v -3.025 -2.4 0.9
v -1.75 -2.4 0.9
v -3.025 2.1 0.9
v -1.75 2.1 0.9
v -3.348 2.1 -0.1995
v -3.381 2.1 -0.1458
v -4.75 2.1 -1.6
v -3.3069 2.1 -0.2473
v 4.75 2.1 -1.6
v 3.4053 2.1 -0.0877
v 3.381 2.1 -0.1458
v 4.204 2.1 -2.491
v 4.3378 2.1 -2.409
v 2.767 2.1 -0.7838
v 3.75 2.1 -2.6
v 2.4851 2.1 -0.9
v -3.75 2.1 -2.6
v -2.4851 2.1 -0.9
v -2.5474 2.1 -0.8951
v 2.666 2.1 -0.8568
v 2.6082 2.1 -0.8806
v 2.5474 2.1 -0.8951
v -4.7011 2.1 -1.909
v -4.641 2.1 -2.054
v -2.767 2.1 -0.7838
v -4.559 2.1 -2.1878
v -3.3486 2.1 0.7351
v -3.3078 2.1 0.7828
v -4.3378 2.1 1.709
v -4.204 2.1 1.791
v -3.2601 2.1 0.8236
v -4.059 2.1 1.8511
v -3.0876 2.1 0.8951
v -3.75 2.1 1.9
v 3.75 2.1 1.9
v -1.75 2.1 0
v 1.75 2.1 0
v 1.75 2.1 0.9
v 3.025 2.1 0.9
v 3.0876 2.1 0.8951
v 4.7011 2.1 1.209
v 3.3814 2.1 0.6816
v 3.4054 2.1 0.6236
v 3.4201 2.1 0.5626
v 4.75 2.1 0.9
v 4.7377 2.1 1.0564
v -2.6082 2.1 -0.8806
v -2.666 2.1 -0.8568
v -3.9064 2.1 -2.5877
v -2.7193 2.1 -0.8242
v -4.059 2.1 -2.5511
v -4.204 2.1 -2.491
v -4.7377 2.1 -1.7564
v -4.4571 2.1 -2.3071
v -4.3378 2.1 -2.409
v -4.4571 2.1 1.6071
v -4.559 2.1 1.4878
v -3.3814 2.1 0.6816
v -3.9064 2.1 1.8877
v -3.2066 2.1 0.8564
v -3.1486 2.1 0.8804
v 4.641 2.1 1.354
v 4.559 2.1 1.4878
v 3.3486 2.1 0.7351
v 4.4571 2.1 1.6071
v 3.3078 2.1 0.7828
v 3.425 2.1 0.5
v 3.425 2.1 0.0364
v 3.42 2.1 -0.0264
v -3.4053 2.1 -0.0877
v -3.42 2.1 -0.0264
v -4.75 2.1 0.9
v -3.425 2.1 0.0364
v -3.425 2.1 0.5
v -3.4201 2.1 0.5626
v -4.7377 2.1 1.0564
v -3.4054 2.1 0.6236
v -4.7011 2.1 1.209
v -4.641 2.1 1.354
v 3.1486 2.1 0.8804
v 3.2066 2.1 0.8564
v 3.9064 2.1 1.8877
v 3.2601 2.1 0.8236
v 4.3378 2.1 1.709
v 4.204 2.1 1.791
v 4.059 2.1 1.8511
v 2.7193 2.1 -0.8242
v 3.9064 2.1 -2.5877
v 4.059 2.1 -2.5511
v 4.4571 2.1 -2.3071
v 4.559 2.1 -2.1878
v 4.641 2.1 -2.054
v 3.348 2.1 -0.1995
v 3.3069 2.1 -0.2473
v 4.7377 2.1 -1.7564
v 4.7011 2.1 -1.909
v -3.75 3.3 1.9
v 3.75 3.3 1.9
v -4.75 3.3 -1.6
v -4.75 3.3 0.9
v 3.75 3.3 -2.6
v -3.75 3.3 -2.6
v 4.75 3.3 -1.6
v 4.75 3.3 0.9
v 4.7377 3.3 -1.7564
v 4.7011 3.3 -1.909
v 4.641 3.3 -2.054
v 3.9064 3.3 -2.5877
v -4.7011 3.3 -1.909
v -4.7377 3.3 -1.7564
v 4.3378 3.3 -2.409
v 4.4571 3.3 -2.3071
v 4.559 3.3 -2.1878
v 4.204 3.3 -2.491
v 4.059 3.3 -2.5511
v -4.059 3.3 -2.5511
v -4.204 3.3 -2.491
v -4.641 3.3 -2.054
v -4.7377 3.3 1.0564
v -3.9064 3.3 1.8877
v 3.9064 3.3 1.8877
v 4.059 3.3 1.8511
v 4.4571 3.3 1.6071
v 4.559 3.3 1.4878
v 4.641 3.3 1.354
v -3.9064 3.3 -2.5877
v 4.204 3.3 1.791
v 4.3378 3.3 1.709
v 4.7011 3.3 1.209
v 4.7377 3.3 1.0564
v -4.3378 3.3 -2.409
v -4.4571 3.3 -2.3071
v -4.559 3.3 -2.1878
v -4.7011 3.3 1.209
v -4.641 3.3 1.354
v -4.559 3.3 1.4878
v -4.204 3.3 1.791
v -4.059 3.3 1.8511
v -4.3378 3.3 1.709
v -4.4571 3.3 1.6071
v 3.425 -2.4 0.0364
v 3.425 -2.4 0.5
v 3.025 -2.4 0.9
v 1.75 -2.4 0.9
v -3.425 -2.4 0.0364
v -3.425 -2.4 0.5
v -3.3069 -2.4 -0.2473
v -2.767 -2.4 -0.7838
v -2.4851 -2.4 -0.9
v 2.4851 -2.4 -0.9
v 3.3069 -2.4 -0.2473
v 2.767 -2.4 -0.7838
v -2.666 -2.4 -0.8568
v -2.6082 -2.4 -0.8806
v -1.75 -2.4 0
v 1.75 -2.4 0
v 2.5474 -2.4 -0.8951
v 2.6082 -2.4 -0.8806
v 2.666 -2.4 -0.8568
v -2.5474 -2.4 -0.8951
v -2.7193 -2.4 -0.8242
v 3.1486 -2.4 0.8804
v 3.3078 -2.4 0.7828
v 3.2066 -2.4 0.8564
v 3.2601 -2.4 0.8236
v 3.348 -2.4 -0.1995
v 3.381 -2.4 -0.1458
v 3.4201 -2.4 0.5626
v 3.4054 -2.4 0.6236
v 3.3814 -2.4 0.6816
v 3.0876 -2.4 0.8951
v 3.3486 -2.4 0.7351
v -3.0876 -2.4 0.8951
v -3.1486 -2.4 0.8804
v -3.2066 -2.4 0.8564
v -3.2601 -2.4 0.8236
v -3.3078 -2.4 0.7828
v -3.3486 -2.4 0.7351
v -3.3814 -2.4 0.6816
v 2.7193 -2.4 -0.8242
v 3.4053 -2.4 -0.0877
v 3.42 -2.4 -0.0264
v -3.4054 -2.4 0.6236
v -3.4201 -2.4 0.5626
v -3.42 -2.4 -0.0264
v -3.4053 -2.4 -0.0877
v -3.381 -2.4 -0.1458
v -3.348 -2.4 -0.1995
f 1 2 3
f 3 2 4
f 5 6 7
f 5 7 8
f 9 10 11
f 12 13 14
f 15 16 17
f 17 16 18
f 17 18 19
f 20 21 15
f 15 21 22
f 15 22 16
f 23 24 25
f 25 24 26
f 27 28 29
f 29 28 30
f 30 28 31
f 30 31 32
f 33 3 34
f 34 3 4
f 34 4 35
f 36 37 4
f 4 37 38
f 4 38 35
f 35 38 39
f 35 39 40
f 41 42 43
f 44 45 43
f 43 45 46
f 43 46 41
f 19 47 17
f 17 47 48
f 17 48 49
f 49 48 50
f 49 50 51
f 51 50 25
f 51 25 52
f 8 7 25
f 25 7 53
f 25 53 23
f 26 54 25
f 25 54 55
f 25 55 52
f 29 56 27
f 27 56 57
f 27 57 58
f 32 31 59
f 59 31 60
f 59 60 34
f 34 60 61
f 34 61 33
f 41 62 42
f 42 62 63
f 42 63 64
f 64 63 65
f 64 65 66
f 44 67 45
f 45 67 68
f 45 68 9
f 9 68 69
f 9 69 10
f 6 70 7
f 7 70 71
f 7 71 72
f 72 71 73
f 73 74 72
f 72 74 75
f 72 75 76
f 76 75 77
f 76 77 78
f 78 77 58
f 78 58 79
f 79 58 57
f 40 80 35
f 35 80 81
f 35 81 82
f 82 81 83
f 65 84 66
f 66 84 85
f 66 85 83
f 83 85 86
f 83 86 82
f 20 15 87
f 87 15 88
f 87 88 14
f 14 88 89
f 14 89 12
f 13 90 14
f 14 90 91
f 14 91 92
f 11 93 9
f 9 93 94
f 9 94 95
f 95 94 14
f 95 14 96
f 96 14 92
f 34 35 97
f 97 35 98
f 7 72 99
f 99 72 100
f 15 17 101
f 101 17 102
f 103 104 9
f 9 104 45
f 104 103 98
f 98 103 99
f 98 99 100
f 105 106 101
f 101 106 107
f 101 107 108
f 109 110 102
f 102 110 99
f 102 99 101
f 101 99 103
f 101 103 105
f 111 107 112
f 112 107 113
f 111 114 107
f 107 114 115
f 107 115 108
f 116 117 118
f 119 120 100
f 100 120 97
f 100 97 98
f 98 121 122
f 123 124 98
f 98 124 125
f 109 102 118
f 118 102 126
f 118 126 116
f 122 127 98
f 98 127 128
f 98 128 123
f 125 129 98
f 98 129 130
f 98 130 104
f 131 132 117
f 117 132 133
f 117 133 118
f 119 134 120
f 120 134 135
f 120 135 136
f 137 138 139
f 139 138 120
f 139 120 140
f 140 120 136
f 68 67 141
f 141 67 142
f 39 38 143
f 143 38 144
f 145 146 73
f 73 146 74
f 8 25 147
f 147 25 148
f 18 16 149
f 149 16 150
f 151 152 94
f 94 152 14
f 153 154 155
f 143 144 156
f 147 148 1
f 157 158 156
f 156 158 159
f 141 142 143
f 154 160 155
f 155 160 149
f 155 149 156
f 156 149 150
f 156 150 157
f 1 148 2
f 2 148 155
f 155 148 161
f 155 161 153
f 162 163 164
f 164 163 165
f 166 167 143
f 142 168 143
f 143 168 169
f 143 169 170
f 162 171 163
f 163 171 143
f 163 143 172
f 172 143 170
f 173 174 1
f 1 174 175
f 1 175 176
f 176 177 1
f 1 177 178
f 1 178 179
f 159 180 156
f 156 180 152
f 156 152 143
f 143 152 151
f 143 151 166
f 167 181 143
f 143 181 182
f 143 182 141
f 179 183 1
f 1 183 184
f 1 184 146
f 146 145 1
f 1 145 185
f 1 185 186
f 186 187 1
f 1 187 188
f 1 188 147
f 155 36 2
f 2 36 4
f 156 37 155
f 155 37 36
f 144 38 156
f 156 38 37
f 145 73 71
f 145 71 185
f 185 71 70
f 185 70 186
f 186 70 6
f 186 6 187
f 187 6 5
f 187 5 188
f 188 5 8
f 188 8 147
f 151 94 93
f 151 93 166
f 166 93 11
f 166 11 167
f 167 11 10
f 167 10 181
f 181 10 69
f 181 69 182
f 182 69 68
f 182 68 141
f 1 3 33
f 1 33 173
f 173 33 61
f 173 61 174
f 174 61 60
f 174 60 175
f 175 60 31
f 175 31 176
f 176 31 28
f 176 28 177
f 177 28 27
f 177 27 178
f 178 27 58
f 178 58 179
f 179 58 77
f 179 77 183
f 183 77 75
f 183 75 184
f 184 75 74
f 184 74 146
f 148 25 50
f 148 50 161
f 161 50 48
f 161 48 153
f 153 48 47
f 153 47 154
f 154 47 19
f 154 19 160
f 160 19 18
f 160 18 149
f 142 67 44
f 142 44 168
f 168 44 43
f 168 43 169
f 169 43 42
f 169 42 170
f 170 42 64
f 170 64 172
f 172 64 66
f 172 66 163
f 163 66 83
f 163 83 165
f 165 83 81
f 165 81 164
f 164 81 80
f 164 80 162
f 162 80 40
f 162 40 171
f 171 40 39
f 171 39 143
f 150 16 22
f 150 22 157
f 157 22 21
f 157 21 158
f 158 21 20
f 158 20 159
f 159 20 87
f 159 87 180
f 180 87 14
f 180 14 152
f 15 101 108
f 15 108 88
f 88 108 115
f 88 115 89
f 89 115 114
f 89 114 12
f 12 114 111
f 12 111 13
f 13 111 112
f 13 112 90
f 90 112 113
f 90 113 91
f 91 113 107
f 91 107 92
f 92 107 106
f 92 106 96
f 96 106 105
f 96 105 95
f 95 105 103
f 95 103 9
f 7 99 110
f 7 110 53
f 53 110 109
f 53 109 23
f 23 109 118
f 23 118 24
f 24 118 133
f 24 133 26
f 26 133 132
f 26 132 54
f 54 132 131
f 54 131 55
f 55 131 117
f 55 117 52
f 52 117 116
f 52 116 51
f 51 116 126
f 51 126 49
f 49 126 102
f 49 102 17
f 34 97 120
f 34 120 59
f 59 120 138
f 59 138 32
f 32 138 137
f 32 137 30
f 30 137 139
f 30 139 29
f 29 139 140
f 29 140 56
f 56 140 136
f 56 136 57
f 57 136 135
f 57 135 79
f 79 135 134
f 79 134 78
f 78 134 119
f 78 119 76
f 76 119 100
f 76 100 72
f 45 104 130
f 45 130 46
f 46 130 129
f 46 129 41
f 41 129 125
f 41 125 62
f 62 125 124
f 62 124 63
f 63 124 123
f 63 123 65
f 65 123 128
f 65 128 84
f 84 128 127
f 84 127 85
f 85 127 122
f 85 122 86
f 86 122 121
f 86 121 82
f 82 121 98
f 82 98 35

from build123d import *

# Parameters (mm, degrees)
SKETCH1_W           = 9.5
SKETCH1_H           = 4.5
BOSS_EXTRUDE1_DEPTH = 1.2
BOSS_EXTRUDE2_DEPTH = 4.5
SKETCH4_W           = 3.5
SKETCH4_H           = 0.9
CUT_EXTRUDE2_DEPTH  = 4.5
FILLET2_R           = 0.4
FILLET3_R           = 1


with BuildPart() as part:
    # Sketch1 → Boss-Extrude1 (new body)
    with BuildSketch(Plane(origin=(0, 3.3, 0), x_dir=(1, 0, 0), z_dir=(0, 1, 0))):
        with Locations((0, 0.35)):
            Rectangle(SKETCH1_W, SKETCH1_H)
    extrude(amount=-BOSS_EXTRUDE1_DEPTH)

    # Sketch2 → Boss-Extrude2 (add)
    with BuildSketch(Plane.XZ.offset(-2.1)):
        Polygon((3.425, -0.13), (2.65, -0.9), (-2.65, -0.9), (-3.425, -0.13), (-3.425, 0.9), (3.425, 0.9), align=None)
    extrude(amount=BOSS_EXTRUDE2_DEPTH)

    # Sketch4 → Cut-Extrude2 (cut)
    with BuildSketch(Plane.XZ.offset(2.4)):
        with Locations((0, 0.45)):
            Rectangle(SKETCH4_W, SKETCH4_H)
    extrude(amount=-CUT_EXTRUDE2_DEPTH, mode=Mode.SUBTRACT)

    # Fillet2
    fillet2_edges = [part.edges().sort_by_distance(p)[0] for p in [
        (3.425, -0.15, -0.13),
        (3.425, -0.15, 0.9),
        (-3.425, -0.15, 0.9),
        (-3.425, -0.15, -0.13),
        (-2.65, -0.15, -0.9),
        (2.65, -0.15, -0.9),
    ]]
    fillet(fillet2_edges, radius=FILLET2_R)

    # Fillet3
    fillet3_edges = [part.edges().sort_by_distance(p)[0] for p in [
        (-4.75, 2.7, 1.9),
        (-4.75, 2.7, -2.6),
        (4.75, 2.7, -2.6),
        (4.75, 2.7, 1.9),
    ]]
    fillet(fillet3_edges, radius=FILLET3_R)


solid = part.part
